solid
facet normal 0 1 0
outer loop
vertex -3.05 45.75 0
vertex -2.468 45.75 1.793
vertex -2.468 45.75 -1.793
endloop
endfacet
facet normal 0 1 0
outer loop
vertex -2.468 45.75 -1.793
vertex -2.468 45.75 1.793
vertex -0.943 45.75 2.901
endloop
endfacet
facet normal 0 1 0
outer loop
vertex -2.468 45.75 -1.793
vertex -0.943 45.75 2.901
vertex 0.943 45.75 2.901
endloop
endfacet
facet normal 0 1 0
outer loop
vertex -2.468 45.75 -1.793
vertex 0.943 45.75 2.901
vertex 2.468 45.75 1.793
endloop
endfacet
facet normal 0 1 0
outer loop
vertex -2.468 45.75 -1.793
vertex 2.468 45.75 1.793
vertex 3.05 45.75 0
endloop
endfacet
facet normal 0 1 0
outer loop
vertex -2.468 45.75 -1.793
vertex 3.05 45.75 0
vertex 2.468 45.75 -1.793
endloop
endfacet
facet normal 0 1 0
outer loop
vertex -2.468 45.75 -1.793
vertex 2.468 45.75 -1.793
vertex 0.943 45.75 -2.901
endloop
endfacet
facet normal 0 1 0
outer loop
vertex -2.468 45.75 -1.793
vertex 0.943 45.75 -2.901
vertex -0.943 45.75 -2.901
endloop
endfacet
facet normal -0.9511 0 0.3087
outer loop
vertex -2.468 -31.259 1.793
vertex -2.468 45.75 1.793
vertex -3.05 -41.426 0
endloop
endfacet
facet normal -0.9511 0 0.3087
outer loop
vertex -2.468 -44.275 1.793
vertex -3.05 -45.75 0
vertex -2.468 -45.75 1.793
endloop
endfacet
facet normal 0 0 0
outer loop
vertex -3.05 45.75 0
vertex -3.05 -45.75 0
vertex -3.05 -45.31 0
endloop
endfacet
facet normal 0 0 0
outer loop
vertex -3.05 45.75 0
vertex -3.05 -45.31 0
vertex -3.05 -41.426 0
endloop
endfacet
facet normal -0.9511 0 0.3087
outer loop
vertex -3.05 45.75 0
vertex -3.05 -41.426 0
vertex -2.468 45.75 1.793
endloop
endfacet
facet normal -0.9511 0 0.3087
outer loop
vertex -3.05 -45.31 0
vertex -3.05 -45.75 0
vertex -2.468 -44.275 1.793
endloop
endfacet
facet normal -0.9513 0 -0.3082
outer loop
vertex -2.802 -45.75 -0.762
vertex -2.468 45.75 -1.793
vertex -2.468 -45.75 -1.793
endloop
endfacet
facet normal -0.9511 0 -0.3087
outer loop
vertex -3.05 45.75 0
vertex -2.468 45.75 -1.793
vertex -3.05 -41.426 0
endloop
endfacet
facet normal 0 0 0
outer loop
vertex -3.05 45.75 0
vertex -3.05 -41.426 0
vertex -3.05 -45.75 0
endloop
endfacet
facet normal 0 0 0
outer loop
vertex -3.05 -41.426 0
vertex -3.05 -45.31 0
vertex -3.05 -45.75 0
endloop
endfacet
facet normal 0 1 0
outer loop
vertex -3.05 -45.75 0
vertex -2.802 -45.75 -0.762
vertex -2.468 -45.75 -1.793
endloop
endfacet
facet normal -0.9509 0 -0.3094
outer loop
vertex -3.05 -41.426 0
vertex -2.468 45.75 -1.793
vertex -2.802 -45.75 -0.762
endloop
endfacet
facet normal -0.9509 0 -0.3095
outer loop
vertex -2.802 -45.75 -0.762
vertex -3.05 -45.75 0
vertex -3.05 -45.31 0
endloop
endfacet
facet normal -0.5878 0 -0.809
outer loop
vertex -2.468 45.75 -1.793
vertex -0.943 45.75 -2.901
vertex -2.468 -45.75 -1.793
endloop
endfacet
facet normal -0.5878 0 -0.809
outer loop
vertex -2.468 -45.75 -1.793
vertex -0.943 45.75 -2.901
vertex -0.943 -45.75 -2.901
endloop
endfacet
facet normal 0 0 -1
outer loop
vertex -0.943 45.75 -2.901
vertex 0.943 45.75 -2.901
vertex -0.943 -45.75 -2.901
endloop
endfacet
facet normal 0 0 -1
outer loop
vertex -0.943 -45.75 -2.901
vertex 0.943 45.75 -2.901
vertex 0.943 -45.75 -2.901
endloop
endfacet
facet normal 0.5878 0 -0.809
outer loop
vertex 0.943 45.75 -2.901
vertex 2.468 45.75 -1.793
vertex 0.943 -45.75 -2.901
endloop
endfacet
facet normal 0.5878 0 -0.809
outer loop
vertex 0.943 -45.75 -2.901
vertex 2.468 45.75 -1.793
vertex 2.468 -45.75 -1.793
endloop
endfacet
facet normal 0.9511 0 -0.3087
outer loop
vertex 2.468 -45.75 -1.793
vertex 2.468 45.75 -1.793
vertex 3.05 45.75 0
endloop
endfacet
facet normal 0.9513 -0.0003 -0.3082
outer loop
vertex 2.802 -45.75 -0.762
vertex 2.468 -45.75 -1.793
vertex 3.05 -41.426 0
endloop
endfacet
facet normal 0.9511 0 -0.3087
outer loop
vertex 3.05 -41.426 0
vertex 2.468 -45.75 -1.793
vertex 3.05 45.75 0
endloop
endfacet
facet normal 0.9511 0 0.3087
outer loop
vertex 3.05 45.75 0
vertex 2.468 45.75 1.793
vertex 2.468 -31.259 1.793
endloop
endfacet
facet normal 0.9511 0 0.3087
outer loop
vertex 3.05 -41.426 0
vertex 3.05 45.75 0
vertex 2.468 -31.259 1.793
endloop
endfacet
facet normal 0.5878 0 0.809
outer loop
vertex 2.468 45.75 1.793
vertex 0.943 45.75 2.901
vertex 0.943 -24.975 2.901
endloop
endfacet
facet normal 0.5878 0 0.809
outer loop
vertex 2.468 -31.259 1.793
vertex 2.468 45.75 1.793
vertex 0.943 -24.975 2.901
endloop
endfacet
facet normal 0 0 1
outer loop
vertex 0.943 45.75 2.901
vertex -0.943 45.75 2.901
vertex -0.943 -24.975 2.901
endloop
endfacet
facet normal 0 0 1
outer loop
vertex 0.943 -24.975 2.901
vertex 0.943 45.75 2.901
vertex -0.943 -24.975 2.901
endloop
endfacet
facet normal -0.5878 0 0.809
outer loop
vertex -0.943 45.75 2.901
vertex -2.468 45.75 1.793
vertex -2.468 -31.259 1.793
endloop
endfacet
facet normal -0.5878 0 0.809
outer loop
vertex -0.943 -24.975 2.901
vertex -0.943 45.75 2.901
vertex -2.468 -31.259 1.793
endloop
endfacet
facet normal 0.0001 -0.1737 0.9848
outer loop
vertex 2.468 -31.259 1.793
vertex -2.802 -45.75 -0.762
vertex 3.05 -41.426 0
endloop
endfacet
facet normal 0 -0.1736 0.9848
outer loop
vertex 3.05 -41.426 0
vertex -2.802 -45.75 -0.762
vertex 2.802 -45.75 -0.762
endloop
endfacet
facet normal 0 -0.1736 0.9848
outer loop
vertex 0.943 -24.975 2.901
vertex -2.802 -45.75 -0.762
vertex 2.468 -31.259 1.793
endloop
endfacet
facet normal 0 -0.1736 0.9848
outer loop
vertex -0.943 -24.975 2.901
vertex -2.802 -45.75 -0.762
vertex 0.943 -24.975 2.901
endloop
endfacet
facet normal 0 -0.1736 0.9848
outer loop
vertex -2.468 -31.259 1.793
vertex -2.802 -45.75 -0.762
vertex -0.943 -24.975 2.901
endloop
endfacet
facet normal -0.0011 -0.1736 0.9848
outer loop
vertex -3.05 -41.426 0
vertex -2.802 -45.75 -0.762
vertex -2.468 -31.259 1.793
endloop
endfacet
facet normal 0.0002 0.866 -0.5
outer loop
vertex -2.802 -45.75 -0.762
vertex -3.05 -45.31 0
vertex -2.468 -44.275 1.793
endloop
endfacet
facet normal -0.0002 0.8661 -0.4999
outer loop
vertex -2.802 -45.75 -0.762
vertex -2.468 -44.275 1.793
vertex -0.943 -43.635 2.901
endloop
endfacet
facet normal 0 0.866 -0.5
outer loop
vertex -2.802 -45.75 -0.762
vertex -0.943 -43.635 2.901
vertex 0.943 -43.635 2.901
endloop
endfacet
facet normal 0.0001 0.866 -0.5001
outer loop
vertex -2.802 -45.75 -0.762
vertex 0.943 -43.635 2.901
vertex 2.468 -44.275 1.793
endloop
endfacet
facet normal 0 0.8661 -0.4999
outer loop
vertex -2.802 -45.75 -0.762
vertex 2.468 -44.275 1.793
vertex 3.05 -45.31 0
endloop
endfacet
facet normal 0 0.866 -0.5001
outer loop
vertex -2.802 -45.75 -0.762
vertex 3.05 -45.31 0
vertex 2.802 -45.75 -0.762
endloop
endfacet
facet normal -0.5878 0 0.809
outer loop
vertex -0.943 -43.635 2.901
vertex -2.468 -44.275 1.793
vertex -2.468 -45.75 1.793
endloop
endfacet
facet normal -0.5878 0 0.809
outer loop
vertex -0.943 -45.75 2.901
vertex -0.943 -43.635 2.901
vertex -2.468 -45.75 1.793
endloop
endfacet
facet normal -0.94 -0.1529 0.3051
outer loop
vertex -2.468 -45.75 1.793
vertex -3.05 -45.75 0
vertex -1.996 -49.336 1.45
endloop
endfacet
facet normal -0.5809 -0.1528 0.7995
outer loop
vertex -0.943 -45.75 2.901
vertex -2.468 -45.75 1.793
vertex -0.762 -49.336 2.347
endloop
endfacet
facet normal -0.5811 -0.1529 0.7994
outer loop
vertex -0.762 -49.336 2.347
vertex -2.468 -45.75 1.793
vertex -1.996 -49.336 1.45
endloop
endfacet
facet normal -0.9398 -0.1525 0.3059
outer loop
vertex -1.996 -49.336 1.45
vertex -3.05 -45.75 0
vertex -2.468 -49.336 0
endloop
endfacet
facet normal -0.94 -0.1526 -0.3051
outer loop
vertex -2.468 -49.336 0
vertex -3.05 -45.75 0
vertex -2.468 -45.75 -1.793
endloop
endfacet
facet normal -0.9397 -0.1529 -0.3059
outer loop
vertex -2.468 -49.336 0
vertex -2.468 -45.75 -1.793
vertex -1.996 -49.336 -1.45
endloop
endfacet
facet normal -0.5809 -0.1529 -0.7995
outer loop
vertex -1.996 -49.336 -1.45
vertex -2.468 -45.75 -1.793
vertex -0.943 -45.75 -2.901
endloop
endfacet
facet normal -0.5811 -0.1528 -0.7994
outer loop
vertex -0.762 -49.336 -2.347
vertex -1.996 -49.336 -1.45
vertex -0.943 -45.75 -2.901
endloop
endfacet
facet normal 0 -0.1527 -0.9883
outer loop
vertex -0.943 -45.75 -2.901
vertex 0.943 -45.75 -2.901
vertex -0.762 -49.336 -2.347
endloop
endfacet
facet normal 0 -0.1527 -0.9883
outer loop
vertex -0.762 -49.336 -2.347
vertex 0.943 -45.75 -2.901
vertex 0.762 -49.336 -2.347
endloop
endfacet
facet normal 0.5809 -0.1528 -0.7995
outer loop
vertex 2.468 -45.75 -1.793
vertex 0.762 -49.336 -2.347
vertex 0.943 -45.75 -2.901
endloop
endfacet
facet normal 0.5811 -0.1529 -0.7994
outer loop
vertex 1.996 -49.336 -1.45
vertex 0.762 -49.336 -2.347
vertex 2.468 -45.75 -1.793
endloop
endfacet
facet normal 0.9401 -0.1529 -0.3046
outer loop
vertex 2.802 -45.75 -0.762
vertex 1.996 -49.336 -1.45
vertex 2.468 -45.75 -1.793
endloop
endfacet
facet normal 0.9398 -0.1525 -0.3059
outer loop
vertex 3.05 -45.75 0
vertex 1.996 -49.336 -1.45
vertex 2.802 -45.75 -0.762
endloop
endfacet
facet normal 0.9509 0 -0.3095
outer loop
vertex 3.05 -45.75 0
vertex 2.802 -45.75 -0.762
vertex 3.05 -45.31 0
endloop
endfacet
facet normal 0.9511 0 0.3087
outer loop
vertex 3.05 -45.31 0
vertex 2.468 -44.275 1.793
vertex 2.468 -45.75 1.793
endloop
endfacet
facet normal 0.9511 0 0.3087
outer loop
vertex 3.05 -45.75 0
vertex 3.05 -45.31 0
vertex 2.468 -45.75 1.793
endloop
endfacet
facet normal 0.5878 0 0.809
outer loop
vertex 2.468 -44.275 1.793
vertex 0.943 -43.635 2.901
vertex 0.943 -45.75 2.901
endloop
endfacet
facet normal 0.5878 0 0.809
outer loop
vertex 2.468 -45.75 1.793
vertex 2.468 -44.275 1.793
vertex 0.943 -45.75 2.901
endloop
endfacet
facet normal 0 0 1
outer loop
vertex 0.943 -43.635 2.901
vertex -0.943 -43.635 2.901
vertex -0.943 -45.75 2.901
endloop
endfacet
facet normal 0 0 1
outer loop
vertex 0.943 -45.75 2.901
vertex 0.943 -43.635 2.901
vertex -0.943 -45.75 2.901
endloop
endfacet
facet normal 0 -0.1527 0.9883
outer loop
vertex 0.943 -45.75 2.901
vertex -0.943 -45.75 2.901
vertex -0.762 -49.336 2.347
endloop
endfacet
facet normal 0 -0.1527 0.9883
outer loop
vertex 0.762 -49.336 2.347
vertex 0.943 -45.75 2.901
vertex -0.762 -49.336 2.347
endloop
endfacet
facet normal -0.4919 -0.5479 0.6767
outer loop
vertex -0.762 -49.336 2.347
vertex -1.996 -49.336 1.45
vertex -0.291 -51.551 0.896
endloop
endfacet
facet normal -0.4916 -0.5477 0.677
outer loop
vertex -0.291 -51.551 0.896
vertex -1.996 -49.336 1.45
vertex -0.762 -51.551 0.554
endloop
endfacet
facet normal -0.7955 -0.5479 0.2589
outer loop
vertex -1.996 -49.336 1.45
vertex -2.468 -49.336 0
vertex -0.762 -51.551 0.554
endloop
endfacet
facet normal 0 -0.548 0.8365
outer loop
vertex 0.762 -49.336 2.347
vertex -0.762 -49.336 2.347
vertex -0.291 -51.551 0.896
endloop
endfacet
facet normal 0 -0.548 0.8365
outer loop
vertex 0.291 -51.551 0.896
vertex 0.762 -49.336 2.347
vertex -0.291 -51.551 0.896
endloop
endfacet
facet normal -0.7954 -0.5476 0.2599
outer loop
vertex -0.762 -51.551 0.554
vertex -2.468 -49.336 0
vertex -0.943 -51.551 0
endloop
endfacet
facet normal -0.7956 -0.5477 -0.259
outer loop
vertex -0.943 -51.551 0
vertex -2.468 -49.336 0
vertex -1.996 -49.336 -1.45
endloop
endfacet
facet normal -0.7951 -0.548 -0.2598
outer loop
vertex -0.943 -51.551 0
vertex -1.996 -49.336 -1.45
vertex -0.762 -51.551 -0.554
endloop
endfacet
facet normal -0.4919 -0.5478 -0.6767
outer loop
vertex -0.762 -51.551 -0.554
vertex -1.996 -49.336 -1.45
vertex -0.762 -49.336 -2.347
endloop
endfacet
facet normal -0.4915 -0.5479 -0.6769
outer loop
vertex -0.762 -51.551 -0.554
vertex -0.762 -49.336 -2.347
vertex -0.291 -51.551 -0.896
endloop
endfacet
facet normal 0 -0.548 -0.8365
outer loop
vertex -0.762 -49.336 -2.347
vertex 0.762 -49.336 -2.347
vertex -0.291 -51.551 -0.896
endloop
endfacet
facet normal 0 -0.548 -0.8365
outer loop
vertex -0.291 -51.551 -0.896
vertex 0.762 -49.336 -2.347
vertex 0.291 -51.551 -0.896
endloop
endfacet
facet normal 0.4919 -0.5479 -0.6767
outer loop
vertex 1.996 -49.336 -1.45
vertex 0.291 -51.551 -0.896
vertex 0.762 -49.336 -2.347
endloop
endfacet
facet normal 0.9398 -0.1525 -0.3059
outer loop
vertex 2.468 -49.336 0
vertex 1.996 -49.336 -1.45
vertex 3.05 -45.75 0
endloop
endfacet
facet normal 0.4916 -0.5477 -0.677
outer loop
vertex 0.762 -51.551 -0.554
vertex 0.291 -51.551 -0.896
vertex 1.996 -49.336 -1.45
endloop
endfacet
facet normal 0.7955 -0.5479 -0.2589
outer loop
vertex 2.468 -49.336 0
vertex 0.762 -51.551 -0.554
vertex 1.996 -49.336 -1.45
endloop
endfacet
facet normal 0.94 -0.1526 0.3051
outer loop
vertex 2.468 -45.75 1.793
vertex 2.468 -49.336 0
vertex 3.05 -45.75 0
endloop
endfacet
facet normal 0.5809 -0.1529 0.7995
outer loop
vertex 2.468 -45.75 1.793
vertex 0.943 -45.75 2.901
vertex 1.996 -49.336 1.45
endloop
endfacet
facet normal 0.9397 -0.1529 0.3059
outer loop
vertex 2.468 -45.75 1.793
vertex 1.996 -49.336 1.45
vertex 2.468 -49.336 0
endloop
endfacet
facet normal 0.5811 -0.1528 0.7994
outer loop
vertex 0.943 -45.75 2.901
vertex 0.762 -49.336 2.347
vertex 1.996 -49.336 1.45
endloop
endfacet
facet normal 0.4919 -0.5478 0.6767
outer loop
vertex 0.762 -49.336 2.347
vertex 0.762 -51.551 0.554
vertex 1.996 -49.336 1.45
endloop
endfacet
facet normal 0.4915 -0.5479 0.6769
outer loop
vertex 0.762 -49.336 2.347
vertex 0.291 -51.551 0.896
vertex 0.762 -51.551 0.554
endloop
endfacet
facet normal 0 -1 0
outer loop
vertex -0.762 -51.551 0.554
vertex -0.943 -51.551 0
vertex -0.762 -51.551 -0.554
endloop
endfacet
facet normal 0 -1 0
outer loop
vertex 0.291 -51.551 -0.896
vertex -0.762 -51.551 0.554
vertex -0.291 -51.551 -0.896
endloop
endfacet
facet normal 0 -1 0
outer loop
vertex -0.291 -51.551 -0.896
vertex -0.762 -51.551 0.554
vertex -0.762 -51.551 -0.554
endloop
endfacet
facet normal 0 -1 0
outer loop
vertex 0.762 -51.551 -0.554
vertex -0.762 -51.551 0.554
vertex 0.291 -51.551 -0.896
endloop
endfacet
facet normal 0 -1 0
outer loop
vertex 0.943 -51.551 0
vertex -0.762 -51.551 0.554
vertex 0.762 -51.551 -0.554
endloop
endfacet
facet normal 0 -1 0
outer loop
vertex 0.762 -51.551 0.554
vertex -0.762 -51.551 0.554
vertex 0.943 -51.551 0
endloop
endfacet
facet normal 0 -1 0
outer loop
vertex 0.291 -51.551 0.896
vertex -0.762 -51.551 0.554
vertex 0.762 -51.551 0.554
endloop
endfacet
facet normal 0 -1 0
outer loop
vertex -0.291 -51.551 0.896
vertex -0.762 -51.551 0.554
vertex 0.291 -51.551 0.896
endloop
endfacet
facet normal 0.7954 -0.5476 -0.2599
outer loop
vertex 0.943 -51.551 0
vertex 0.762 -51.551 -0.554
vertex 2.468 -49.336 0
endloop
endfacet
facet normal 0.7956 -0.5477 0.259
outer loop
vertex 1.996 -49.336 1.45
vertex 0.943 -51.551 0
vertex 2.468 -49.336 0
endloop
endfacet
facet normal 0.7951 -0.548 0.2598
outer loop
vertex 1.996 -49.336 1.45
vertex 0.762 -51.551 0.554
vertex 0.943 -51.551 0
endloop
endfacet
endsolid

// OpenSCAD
hooksize = 6.1;
d = hooksize;
r = hooksize/2;
h = hooksize * 15;
hook_lower_angle = 80;
hook_upper_angle = 30;

// Right-angled triangle with interior angle <angle>.
module triangle(radius, angle)
{
  o=radius*sin(angle);
  a=radius*cos(angle);
  polygon(points=[[0,0], [a,0], [a,o]]);
}

// module triangle_prism() copied from:
// https://github.com/elmom/MCAD/blob/master/regular_shapes.scad
module triangle_prism(height, radius, angle)
{
  linear_extrude(height=height, center = true) triangle(radius, angle);
}

rotate(a=[90, 0, 0])
        difference()
        {
                union()
                {
                        translate (v=[0,0,h/2])
                                scale([1.0, 1.0, 2.0])
                                sphere(r = r, anglesteps = 10, sweepsteps = 10);
                        cylinder(r = r, h = h, center = true);
                }
                translate (v= [0 , -r/4, h/2])
                        rotate(a=[270, 0, 90])
                        difference() {
                                triangle_prism(d, 4*d, hook_lower_angle);
                                triangle_prism(d, 4*d, hook_upper_angle);
                        }
        }
